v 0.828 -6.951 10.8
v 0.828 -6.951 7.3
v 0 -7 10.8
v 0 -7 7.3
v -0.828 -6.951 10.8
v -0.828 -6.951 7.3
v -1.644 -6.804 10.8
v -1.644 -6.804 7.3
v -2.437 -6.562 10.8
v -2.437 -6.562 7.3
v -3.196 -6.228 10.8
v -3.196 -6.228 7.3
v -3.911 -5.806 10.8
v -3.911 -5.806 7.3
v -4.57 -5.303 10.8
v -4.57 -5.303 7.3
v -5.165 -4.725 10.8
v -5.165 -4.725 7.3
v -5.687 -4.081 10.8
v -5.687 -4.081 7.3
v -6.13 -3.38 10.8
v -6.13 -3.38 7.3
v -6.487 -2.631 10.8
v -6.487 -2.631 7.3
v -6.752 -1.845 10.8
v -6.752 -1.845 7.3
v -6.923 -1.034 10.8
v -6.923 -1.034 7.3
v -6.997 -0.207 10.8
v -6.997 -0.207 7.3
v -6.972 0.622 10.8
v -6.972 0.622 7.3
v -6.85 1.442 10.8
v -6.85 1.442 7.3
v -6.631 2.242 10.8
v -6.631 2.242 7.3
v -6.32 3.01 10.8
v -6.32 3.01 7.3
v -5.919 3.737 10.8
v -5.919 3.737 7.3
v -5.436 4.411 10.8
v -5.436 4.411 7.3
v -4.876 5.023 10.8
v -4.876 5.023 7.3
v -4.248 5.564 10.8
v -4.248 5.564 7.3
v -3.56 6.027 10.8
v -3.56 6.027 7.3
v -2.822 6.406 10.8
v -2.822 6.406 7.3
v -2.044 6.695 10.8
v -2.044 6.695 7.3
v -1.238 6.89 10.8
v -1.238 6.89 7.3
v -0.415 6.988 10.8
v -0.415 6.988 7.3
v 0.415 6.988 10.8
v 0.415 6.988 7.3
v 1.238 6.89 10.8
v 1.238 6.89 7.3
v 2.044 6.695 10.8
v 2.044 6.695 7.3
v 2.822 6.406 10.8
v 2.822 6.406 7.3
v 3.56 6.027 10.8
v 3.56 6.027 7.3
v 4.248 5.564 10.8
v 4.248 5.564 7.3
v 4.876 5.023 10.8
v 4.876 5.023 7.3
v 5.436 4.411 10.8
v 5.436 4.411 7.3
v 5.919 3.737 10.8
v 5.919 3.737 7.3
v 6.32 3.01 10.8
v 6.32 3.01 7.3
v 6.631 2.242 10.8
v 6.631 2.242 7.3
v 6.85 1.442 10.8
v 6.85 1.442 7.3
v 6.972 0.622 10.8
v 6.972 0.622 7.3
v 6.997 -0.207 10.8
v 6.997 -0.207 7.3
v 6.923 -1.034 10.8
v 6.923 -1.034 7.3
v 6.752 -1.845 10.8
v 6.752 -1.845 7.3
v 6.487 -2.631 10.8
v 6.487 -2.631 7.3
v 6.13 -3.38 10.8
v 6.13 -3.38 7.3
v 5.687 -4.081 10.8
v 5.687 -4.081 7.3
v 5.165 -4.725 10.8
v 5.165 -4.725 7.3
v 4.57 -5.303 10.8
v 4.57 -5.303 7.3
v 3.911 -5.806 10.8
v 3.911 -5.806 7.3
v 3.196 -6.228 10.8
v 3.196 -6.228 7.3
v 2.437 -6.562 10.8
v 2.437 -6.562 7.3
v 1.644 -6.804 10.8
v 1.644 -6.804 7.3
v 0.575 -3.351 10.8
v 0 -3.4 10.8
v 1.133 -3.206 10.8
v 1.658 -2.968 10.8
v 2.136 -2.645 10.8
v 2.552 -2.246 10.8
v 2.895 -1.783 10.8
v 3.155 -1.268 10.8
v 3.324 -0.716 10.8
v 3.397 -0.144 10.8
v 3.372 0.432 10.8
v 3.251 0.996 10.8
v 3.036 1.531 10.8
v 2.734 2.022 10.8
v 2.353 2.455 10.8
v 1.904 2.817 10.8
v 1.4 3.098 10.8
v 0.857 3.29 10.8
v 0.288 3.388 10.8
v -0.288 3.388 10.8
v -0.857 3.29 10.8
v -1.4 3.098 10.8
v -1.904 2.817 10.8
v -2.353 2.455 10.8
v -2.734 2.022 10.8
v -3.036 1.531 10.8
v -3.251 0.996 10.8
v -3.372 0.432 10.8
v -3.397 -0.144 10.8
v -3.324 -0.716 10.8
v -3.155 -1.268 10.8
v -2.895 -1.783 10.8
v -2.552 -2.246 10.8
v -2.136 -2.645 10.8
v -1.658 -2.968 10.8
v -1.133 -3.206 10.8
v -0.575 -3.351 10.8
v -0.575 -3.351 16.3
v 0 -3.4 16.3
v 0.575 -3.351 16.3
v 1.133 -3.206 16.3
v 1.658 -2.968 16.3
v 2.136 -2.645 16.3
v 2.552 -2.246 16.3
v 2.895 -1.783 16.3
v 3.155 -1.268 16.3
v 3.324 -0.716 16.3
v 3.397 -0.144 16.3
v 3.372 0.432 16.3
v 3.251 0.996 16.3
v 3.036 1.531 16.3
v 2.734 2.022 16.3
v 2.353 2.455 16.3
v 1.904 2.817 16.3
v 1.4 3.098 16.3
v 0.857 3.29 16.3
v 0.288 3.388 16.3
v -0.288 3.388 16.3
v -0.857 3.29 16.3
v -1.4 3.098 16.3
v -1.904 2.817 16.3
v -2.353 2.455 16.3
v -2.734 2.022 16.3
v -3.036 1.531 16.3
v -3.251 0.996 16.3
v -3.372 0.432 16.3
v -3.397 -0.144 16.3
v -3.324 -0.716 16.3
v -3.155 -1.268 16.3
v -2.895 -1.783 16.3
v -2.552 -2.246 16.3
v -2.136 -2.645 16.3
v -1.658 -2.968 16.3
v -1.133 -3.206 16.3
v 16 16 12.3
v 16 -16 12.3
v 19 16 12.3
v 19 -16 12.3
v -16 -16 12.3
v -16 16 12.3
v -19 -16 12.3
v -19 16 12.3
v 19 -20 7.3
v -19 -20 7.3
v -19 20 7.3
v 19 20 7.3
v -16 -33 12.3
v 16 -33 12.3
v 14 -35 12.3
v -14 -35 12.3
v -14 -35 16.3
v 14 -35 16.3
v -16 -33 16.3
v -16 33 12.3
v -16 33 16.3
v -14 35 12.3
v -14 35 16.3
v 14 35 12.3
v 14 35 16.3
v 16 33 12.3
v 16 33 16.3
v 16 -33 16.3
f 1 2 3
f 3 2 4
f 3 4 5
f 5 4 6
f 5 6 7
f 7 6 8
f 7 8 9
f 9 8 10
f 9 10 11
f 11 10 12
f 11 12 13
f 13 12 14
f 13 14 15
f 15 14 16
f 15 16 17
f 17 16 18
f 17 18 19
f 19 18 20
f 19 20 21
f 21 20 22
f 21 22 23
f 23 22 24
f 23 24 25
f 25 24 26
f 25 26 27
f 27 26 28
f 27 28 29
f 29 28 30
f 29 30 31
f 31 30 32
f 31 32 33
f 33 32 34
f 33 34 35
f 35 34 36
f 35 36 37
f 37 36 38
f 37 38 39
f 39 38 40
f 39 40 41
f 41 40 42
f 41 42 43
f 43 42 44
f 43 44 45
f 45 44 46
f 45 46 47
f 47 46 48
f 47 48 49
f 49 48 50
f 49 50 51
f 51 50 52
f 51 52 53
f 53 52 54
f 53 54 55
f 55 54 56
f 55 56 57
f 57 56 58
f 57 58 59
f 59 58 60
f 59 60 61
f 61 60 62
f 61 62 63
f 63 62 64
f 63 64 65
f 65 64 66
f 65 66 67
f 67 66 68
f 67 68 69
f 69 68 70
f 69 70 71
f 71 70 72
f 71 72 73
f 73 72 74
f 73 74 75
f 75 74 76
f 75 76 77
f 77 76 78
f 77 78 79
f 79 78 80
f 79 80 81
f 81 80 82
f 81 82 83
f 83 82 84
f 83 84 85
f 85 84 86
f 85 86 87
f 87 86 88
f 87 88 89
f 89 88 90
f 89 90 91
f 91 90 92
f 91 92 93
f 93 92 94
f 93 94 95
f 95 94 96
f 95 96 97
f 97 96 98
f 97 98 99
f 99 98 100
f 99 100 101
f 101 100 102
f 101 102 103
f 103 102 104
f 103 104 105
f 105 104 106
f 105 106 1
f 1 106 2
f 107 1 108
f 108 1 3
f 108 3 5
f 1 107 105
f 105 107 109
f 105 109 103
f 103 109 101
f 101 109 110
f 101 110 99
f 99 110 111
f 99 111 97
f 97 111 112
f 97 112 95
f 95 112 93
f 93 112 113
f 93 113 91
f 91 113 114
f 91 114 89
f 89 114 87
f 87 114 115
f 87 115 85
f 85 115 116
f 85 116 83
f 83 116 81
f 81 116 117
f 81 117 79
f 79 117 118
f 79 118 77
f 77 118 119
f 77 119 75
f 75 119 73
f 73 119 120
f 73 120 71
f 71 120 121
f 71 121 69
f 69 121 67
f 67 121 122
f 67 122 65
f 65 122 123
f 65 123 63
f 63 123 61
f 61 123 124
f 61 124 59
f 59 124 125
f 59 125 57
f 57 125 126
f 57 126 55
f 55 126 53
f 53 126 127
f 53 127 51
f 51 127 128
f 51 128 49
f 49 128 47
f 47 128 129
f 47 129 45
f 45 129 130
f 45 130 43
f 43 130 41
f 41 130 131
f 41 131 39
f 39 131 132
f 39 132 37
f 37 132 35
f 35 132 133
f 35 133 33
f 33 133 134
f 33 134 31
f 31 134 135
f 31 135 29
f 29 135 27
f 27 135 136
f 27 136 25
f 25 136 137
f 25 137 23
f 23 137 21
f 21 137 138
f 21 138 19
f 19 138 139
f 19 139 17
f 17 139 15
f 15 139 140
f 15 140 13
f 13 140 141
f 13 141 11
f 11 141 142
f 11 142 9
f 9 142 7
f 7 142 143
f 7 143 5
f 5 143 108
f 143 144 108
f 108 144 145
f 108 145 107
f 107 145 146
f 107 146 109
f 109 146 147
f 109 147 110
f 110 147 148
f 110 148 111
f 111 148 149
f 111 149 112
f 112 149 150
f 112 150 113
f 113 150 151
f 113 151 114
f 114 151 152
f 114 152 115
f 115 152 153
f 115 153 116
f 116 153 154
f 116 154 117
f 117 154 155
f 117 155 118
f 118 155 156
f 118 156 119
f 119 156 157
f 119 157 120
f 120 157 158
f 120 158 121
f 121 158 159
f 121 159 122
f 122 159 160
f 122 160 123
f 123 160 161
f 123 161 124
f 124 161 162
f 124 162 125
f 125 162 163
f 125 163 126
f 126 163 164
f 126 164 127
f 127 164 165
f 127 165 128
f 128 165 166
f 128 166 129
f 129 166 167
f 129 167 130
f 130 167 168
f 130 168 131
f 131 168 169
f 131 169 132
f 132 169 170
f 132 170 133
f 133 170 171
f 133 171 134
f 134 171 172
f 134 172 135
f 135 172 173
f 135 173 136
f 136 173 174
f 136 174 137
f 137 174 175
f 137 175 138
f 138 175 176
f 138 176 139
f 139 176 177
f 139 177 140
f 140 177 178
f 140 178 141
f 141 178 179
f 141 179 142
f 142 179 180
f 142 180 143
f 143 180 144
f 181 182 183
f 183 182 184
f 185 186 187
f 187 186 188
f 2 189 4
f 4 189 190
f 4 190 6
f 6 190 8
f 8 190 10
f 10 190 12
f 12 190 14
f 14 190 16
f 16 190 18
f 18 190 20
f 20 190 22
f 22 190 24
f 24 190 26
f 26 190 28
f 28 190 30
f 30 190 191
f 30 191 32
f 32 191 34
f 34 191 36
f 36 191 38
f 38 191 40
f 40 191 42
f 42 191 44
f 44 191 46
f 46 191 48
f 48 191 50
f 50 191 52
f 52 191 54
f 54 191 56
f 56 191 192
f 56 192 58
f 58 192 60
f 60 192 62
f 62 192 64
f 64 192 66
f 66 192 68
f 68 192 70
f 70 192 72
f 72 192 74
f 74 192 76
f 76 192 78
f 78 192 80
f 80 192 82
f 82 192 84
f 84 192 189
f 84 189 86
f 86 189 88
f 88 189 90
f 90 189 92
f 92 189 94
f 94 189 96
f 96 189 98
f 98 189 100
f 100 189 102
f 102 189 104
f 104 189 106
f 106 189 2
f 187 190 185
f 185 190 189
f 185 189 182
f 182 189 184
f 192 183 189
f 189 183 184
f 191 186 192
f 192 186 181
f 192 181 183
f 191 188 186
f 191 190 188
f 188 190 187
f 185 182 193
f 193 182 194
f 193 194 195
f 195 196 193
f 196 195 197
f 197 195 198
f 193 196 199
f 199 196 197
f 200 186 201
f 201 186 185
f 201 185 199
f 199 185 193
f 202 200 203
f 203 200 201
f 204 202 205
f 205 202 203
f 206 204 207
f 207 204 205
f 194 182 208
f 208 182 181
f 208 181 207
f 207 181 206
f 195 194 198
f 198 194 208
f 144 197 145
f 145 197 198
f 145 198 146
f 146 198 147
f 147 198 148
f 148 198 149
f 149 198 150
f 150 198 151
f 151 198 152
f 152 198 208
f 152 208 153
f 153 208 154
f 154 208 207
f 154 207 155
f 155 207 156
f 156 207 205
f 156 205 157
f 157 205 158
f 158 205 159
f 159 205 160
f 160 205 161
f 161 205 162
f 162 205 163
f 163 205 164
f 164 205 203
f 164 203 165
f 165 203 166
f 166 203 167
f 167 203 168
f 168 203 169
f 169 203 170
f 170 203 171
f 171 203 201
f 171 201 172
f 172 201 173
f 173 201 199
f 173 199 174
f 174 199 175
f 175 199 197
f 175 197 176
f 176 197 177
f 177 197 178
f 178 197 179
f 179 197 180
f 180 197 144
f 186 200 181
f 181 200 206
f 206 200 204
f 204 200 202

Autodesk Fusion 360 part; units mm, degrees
ref_plane "工作平面1" through (0, 0, 12.3) normal (0, 0, 1) x (1, 0, 0)
sketch "草图1" plane through (0, 0, 12.3) normal (0, 0, 1) x (1, 0, 0)
  line L0 (-33, -16) -> (33, -16)
  line L1 (33, -16) -> (35, -14)
  line L2 (35, -14) -> (35, 14)
  line L3 (35, 14) -> (33, 16)
  line L4 (33, 16) -> (-33, 16)
  line L5 (-33, 16) -> (-35, 14)
  line L6 (-35, 14) -> (-35, -14)
  line L7 (-35, -14) -> (-33, -16)
extrude "70 x 32 camera support plate" add sketch "草图1" along normal blind 4
ref_plane "工作平面2" through (0, 0, 7.3) normal (0, 0, 1) x (1, 0, 0)
sketch "草图2" plane through (0, 0, 7.3) normal (0, 0, 1) x (1, 0, 0)
  line L0 (-20, -19) -> (20, -19)
  line L1 (20, -19) -> (20, 19)
  line L2 (20, 19) -> (-20, 19)
  line L3 (-20, 19) -> (-20, -19)
ref_plane "工作平面3" through (0, 0, 12.3) normal (0, 0, 1) x (1, 0, 0)
sketch "草图3" plane through (0, 0, 12.3) normal (0, 0, 1) x (1, 0, 0)
  line L0 (-16, -19) -> (16, -19)
  line L1 (16, -19) -> (16, 19)
  line L2 (16, 19) -> (-16, 19)
  line L3 (-16, 19) -> (-16, -19)
loft "40 to 32 mm male dovetail" add profiles "草图2", "草图3" section 1 section 2
ref_plane "工作平面4" through (0, 0, 7.3) normal (0, 0, 1) x (1, 0, 0)
sketch "草图4" plane through (0, 0, 7.3) normal (0, 0, 1) x (1, 0, 0)
  circle A0 centre (0, 0) radius 3.4
extrude "1/4 inch metal screw clearance 6.8 mm" cut sketch "草图4" along normal blind 9
ref_plane "工作平面5" through (0, 0, 7.3) normal (0, 0, 1) x (1, 0, 0)
sketch "草图5" plane through (0, 0, 7.3) normal (0, 0, 1) x (1, 0, 0)
  circle A0 centre (0, 0) radius 7
extrude "14 x 3.5 mm screw head recess" cut sketch "草图5" along normal blind 3.5
move_body "Align camera long edge with gimbal arm - 90 degrees" bodies 1 to x (0, 1, 0) y (-1, 0, 0) z (0, 0, 1) at (0, 0, 0)
